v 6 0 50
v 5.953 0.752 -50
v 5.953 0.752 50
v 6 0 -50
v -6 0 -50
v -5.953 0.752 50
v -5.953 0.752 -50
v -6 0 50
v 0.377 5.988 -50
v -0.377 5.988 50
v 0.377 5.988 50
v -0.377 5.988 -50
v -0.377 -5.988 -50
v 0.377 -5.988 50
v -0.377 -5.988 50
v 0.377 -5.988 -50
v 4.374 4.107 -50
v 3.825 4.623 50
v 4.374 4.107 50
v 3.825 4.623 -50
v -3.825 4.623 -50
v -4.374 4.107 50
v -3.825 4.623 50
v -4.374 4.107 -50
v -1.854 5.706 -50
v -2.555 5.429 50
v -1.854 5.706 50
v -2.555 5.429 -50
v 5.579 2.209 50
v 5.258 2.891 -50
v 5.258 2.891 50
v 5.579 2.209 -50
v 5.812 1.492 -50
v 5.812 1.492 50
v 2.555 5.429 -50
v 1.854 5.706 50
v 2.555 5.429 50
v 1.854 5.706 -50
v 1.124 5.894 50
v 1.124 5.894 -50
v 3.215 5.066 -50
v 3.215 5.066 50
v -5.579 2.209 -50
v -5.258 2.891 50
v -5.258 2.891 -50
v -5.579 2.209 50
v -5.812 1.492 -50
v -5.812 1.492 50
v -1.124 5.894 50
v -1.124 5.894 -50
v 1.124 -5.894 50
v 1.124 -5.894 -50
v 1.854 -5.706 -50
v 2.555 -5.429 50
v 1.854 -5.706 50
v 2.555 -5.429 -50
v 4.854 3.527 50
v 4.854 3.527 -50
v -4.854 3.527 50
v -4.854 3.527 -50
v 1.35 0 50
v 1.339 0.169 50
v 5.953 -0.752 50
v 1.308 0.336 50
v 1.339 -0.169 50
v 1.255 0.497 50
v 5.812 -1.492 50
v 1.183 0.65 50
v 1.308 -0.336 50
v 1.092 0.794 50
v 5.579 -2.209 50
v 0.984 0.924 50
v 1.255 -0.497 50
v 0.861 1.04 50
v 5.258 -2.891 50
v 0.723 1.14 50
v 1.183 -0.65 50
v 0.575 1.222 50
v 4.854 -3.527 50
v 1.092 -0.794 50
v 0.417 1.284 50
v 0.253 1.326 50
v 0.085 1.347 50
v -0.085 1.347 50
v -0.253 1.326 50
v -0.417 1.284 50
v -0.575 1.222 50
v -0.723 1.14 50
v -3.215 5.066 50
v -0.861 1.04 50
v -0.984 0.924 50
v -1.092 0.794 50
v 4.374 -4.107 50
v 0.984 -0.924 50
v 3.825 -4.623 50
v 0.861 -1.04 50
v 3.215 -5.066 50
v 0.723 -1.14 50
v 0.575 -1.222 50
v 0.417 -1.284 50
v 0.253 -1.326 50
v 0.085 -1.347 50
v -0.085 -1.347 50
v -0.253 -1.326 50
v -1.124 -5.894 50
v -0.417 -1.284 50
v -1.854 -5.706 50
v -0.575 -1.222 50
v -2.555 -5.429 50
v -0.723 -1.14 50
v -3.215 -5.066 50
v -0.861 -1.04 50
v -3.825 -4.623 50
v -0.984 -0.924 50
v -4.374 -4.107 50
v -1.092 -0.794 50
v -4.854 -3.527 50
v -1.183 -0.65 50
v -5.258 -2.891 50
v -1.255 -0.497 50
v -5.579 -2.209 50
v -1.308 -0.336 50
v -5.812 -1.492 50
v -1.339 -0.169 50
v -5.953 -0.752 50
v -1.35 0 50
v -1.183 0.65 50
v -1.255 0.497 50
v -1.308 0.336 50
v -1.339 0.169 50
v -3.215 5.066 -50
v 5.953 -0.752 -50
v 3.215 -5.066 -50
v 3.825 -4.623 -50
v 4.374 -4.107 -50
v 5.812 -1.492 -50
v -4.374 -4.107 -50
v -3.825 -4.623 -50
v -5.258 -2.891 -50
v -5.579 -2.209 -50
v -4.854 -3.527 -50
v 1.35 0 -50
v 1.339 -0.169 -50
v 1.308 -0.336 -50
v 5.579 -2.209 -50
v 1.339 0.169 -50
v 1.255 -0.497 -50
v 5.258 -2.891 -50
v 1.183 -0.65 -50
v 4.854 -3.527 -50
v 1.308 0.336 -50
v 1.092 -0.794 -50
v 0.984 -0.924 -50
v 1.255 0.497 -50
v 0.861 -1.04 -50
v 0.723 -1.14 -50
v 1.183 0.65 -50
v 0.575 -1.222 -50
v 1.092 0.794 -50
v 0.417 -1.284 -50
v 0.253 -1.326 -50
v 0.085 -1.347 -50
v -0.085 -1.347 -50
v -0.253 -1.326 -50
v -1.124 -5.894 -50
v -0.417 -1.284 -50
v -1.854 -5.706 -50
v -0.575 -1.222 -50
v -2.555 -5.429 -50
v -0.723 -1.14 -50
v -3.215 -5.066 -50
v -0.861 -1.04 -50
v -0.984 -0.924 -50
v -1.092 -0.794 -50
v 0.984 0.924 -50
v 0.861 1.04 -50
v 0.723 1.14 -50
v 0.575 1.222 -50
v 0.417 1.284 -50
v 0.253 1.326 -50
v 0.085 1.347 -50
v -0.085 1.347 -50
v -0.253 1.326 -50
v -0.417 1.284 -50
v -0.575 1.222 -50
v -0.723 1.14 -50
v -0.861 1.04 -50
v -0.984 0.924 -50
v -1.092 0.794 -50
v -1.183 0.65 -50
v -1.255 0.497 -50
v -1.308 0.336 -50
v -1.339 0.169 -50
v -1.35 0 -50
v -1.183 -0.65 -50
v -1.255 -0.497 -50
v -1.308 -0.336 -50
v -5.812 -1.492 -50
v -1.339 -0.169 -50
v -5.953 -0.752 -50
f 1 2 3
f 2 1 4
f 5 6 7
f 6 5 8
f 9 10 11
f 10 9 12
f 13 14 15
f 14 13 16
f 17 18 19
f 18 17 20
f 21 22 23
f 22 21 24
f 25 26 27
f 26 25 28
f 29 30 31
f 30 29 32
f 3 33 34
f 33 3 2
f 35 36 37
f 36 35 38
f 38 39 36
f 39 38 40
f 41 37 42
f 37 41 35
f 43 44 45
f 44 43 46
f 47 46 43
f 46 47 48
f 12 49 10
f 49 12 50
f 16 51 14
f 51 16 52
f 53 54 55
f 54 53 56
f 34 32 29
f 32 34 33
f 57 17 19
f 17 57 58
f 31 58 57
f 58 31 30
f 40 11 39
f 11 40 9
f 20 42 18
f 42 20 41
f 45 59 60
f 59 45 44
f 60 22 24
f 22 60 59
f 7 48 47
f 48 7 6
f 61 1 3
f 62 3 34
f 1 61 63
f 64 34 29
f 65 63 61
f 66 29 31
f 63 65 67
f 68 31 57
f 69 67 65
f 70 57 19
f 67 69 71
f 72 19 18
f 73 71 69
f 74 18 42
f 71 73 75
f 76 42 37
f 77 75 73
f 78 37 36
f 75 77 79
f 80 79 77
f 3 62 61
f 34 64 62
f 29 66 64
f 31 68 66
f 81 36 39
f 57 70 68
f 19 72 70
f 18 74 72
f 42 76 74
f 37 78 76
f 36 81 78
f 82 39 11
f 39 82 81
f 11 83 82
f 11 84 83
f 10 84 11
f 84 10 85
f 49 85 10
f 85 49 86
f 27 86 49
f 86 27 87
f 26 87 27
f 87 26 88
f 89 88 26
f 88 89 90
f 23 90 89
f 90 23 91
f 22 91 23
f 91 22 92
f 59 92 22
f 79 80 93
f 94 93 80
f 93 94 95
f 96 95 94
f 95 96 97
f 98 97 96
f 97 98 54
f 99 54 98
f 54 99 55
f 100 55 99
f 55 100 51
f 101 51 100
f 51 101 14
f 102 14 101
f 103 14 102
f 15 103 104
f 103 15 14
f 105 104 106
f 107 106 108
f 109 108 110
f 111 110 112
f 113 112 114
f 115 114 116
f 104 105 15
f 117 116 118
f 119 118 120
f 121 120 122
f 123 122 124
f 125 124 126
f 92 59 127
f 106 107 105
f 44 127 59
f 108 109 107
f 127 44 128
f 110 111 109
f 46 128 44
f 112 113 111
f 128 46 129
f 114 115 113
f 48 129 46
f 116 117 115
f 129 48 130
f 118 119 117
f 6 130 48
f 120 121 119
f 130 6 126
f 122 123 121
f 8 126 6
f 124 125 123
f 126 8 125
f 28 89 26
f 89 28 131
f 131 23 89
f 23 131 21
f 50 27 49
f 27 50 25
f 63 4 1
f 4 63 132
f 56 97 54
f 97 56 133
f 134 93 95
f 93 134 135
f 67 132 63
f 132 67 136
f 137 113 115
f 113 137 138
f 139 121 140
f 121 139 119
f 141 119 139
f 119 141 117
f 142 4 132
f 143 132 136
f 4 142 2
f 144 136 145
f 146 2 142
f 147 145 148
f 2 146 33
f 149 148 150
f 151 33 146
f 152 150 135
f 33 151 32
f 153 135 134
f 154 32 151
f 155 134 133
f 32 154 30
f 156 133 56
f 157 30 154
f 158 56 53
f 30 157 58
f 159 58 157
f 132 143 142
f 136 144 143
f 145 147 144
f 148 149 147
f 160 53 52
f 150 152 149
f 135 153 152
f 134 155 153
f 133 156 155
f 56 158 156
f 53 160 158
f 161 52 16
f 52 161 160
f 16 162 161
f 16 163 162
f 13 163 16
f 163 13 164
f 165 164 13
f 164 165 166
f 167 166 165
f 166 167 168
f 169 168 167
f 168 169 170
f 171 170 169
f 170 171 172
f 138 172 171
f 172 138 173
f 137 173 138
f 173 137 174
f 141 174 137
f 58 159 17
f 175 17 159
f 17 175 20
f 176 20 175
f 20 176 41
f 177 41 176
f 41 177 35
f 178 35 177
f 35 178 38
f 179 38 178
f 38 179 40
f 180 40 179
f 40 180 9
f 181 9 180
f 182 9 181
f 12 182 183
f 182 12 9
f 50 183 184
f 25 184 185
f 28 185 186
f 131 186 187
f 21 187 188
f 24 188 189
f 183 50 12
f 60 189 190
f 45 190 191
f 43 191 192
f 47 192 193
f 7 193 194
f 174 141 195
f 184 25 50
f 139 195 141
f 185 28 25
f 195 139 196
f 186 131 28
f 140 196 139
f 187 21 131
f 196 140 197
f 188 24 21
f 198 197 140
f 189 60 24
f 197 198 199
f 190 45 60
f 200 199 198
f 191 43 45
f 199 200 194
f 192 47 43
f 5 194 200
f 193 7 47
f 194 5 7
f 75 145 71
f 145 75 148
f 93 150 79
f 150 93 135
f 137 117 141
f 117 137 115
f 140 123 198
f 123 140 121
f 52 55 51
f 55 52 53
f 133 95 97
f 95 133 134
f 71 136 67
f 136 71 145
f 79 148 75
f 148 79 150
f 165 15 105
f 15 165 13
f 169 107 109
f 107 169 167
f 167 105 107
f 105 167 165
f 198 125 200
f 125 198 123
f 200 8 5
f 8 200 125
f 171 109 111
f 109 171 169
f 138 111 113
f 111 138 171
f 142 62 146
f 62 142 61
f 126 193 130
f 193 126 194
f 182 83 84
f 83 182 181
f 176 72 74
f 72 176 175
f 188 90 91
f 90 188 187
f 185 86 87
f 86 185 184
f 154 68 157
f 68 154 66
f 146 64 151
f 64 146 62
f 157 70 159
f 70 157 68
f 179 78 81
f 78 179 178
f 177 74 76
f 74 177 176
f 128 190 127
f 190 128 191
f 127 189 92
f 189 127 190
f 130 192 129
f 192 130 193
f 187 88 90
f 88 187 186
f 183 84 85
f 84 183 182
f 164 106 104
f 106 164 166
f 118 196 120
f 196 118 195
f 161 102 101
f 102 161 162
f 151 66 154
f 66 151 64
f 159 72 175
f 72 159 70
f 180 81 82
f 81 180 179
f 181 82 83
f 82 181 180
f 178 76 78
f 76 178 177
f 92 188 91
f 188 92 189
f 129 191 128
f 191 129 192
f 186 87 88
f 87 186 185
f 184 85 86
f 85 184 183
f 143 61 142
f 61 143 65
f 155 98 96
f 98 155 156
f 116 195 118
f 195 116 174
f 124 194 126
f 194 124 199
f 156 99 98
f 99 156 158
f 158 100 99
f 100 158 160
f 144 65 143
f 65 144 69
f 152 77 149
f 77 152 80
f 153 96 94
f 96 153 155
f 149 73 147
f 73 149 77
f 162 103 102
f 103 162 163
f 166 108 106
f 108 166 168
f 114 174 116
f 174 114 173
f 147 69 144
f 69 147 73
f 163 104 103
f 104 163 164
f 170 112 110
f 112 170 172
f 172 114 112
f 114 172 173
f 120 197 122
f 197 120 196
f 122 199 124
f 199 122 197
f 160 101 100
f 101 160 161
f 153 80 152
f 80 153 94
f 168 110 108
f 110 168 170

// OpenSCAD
$fn = 50;


difference() {
	union() {
		translate(v = [0, 0, -50.0000000000]) {
			cylinder(h = 100, r = 6.0000000000);
		}
	}
	union() {
		translate(v = [0, 0, -100.0000000000]) {
			cylinder(h = 200, r = 1.3500000000);
		}
	}
}
